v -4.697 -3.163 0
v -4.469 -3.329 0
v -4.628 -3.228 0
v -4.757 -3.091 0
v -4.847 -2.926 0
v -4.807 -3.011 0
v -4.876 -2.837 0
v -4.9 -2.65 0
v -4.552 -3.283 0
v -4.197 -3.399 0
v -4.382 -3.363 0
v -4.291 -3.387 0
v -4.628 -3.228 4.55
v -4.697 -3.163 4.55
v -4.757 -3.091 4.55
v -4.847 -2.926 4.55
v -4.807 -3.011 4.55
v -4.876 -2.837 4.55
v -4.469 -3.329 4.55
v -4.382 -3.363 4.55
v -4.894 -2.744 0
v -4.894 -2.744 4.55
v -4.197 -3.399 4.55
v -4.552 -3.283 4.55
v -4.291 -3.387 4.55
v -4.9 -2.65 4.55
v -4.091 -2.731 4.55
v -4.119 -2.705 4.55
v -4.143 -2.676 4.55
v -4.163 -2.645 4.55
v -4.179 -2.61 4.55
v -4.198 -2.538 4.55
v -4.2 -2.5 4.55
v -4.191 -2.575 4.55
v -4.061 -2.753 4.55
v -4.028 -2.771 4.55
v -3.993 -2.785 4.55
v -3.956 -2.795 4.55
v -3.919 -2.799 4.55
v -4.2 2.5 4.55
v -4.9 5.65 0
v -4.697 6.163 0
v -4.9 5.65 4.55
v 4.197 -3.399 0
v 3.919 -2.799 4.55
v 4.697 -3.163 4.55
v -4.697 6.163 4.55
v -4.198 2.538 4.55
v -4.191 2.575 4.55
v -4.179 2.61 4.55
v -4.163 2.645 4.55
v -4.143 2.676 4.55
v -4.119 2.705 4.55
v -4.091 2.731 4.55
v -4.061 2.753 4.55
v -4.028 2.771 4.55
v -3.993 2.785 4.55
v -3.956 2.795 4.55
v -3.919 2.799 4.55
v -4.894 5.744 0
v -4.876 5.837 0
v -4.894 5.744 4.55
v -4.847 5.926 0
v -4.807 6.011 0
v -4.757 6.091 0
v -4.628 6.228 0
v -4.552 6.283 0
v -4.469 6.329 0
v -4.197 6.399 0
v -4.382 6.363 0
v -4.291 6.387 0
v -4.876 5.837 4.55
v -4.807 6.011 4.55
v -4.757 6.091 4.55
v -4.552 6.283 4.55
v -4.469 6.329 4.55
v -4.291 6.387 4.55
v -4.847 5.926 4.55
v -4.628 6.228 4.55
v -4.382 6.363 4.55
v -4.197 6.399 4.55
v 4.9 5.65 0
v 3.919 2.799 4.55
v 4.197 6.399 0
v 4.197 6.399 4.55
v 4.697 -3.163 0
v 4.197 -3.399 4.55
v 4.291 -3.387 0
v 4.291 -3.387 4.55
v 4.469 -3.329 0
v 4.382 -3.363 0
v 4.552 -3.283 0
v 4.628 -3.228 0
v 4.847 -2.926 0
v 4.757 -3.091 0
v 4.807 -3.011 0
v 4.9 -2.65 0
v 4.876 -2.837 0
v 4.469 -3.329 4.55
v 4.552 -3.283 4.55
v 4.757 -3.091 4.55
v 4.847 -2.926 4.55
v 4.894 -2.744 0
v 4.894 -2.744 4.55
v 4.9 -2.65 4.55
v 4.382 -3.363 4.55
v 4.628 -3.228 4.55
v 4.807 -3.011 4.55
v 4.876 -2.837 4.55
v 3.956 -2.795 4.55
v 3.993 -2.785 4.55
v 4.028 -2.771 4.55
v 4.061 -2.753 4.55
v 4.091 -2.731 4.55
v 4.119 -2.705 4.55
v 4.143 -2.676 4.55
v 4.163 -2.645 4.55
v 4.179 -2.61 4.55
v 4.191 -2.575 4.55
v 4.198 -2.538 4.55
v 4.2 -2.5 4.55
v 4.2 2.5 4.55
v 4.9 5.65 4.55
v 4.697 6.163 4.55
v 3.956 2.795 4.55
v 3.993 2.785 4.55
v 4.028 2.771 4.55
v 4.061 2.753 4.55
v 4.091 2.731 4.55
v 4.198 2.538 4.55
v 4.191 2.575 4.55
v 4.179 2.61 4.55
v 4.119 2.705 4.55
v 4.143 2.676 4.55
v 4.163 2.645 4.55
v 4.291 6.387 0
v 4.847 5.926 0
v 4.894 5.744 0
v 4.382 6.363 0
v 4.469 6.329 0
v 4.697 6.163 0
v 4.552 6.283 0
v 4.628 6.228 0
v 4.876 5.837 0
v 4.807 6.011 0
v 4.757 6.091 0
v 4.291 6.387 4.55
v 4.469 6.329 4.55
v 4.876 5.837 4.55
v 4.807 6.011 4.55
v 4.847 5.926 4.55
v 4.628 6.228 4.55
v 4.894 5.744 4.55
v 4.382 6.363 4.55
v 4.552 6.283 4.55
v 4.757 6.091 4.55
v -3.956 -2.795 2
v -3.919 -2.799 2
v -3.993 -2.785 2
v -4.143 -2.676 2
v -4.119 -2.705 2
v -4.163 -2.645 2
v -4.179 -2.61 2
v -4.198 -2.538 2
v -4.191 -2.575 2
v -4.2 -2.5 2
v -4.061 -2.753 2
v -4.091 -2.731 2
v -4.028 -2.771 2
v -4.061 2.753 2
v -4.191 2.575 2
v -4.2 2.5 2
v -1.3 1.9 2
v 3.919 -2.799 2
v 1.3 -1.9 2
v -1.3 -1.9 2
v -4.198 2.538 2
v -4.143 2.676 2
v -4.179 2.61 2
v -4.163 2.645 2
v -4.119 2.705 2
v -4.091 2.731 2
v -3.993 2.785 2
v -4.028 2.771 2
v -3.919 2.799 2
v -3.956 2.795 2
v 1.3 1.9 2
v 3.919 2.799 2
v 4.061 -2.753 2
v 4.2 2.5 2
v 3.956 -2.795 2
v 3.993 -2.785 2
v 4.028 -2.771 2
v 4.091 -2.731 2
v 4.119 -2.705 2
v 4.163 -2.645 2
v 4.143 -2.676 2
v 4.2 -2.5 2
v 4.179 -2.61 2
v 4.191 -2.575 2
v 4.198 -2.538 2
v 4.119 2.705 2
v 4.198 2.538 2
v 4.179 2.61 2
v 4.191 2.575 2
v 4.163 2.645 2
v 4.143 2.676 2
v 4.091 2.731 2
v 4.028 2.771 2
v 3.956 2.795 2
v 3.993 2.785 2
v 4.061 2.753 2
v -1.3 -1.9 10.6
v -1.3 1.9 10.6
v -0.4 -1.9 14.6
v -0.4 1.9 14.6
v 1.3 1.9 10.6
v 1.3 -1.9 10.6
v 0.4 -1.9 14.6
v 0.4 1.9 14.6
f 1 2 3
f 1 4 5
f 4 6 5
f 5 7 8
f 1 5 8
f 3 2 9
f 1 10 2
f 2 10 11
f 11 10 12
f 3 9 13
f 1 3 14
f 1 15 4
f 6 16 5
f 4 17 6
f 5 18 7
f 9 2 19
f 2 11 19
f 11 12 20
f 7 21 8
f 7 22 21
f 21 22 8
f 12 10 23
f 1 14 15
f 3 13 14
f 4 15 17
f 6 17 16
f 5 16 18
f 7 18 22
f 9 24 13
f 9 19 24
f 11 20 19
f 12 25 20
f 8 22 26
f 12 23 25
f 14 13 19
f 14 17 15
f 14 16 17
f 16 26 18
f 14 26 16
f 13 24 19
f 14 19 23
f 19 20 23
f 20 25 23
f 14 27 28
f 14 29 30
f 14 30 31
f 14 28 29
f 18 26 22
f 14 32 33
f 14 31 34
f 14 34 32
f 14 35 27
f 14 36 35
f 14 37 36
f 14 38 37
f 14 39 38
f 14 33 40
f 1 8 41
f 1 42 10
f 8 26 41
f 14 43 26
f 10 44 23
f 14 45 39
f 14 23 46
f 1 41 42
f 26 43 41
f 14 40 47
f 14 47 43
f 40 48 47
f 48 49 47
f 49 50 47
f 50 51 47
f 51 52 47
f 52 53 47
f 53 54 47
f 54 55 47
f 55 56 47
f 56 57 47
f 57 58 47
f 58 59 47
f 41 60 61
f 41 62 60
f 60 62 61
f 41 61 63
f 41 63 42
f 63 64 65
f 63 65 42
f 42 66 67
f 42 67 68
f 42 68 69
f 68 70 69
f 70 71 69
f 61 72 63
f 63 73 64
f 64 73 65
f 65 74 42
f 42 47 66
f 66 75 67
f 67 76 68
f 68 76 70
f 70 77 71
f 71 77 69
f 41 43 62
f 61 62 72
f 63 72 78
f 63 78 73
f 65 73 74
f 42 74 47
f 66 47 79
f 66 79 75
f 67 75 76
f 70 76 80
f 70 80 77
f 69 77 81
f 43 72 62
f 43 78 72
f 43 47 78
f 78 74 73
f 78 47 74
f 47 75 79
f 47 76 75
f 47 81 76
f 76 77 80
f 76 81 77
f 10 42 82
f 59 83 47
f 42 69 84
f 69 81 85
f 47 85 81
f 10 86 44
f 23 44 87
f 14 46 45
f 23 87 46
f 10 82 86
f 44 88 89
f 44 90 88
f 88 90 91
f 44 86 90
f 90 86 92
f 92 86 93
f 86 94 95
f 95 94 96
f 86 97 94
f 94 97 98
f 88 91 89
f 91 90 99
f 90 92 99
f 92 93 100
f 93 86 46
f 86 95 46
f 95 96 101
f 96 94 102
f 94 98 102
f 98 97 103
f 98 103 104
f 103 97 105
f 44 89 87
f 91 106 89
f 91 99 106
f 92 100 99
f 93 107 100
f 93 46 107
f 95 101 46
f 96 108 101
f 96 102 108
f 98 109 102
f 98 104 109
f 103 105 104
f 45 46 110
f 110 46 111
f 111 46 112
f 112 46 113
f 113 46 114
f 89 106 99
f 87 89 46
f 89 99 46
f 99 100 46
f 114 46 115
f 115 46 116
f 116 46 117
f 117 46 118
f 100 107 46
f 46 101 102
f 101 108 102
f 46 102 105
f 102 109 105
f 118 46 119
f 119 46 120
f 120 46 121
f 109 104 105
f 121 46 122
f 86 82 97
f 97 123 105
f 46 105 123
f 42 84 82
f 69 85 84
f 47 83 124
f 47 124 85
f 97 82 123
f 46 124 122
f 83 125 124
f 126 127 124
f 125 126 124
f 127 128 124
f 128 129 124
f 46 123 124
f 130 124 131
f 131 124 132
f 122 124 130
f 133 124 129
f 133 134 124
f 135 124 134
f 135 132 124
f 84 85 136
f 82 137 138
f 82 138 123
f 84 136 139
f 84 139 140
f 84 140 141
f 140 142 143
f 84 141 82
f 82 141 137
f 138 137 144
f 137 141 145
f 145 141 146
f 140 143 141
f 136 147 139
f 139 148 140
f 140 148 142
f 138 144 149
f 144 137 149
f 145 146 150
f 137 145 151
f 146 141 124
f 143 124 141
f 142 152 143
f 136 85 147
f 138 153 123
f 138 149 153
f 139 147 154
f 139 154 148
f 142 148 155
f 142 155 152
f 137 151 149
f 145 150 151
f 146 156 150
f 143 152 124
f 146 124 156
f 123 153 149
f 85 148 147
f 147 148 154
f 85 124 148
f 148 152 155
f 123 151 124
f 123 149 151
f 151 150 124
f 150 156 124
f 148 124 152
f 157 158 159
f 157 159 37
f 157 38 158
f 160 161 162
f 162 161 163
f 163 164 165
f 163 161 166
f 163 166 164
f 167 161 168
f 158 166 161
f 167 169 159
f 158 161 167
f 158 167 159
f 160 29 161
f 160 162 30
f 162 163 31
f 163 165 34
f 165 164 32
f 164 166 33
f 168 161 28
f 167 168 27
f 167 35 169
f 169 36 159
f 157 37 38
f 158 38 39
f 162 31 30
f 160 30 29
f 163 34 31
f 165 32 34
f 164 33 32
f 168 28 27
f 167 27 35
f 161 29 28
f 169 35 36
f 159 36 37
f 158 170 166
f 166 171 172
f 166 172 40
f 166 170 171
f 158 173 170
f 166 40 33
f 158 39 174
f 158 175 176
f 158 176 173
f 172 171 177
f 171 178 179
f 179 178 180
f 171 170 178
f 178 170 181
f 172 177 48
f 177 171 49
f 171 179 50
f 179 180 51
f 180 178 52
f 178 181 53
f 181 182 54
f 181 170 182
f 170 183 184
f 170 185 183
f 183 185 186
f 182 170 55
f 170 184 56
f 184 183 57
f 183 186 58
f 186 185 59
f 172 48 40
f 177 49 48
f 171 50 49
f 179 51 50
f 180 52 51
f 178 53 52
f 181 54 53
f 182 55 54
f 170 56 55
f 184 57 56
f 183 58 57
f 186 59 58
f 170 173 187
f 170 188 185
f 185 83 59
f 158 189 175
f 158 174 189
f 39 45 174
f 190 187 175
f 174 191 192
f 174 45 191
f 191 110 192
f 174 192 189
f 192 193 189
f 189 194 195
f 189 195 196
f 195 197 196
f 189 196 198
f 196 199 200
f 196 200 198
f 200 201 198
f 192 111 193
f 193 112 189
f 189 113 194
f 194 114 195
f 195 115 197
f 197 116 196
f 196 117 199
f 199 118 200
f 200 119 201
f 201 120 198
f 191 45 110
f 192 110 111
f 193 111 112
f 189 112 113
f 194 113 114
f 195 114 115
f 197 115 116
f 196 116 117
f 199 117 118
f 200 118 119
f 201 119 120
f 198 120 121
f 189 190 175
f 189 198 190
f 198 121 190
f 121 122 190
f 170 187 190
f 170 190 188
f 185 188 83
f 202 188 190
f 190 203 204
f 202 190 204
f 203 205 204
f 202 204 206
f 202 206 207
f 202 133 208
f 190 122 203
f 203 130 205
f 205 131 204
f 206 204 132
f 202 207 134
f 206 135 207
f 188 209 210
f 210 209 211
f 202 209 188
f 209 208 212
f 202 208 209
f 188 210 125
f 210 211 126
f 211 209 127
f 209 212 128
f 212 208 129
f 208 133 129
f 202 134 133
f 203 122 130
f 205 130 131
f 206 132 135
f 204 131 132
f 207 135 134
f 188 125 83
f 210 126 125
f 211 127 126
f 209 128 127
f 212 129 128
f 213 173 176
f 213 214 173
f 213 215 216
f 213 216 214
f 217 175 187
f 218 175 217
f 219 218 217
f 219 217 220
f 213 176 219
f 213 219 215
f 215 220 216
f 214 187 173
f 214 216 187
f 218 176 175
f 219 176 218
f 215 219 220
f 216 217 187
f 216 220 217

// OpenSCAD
$fn = 50;

difference() {
	union() {
		translate(v = [0, 0, 0]) {
			rotate(a = [0, 0, 0]) {
				difference() {
					union() {
						translate(v = [0, 0, 0]) {
							rotate(a = [0, 0, 0]) {
								difference() {
									union() {
										translate(v = [0, 1.5, 0]) {
											hull() {
												translate(v = [-4.15, 4.15, 0]) {
													cylinder(h = 4.55, r = 0.75);
												}
												translate(v = [4.15, 4.15, 0]) {
													cylinder(h = 4.55, r = 0.75);
												}
												translate(v = [-4.15, -4.15, 0]) {
													cylinder(h = 4.55, r = 0.75);
												}
												translate(v = [4.15, -4.15, 0]) {
													cylinder(h = 4.55, r = 0.75);
												}
											}
										}
									}
									union() {
										translate(v = [0, 0, 2.0]) {
											hull() {
												translate(v = [-3.9000000000000004, 2.5, 0]) {
													cylinder(h = 2.65, r = 0.3);
												}
												translate(v = [3.9000000000000004, 2.5, 0]) {
													cylinder(h = 2.65, r = 0.3);
												}
												translate(v = [-3.9000000000000004, -2.5, 0]) {
													cylinder(h = 2.65, r = 0.3);
												}
												translate(v = [3.9000000000000004, -2.5, 0]) {
													cylinder(h = 2.65, r = 0.3);
												}
											}
										}
									}
								}
							}
						}
						translate(v = [0, 0, 0]) {
							rotate(a = [0, 0, 0]) {
								difference() {
									union() {
										translate(v = [-1.4000000000000001, -1.9, 1.95]) {
											cube(size = [2.8000000000000003, 3.8, 12.65]);
										}
									}
									union() {
										translate(v = [0, 2.0, 0]) {
											rotate(a = [90, 0, 0]) {
												linear_extrude(height = 4.0) {
													polygon(points = [[-1.3, 1.85], [-1.3, 10.6], [-0.4, 14.6], [-0.4, 14.799999999999999], [-1.6, 14.799999999999999], [-1.6, 1.85]]);
												}
											}
										}
										translate(v = [0, 2.0, 0]) {
											rotate(a = [90, 0, 0]) {
												linear_extrude(height = 4.0) {
													polygon(points = [[1.3, 1.85], [1.3, 10.6], [0.4, 14.6], [0.4, 14.799999999999999], [1.6, 14.799999999999999], [1.6, 1.85]]);
												}
											}
										}
									}
								}
							}
						}
					}
					union();
				}
			}
		}
	}
	union();
}
